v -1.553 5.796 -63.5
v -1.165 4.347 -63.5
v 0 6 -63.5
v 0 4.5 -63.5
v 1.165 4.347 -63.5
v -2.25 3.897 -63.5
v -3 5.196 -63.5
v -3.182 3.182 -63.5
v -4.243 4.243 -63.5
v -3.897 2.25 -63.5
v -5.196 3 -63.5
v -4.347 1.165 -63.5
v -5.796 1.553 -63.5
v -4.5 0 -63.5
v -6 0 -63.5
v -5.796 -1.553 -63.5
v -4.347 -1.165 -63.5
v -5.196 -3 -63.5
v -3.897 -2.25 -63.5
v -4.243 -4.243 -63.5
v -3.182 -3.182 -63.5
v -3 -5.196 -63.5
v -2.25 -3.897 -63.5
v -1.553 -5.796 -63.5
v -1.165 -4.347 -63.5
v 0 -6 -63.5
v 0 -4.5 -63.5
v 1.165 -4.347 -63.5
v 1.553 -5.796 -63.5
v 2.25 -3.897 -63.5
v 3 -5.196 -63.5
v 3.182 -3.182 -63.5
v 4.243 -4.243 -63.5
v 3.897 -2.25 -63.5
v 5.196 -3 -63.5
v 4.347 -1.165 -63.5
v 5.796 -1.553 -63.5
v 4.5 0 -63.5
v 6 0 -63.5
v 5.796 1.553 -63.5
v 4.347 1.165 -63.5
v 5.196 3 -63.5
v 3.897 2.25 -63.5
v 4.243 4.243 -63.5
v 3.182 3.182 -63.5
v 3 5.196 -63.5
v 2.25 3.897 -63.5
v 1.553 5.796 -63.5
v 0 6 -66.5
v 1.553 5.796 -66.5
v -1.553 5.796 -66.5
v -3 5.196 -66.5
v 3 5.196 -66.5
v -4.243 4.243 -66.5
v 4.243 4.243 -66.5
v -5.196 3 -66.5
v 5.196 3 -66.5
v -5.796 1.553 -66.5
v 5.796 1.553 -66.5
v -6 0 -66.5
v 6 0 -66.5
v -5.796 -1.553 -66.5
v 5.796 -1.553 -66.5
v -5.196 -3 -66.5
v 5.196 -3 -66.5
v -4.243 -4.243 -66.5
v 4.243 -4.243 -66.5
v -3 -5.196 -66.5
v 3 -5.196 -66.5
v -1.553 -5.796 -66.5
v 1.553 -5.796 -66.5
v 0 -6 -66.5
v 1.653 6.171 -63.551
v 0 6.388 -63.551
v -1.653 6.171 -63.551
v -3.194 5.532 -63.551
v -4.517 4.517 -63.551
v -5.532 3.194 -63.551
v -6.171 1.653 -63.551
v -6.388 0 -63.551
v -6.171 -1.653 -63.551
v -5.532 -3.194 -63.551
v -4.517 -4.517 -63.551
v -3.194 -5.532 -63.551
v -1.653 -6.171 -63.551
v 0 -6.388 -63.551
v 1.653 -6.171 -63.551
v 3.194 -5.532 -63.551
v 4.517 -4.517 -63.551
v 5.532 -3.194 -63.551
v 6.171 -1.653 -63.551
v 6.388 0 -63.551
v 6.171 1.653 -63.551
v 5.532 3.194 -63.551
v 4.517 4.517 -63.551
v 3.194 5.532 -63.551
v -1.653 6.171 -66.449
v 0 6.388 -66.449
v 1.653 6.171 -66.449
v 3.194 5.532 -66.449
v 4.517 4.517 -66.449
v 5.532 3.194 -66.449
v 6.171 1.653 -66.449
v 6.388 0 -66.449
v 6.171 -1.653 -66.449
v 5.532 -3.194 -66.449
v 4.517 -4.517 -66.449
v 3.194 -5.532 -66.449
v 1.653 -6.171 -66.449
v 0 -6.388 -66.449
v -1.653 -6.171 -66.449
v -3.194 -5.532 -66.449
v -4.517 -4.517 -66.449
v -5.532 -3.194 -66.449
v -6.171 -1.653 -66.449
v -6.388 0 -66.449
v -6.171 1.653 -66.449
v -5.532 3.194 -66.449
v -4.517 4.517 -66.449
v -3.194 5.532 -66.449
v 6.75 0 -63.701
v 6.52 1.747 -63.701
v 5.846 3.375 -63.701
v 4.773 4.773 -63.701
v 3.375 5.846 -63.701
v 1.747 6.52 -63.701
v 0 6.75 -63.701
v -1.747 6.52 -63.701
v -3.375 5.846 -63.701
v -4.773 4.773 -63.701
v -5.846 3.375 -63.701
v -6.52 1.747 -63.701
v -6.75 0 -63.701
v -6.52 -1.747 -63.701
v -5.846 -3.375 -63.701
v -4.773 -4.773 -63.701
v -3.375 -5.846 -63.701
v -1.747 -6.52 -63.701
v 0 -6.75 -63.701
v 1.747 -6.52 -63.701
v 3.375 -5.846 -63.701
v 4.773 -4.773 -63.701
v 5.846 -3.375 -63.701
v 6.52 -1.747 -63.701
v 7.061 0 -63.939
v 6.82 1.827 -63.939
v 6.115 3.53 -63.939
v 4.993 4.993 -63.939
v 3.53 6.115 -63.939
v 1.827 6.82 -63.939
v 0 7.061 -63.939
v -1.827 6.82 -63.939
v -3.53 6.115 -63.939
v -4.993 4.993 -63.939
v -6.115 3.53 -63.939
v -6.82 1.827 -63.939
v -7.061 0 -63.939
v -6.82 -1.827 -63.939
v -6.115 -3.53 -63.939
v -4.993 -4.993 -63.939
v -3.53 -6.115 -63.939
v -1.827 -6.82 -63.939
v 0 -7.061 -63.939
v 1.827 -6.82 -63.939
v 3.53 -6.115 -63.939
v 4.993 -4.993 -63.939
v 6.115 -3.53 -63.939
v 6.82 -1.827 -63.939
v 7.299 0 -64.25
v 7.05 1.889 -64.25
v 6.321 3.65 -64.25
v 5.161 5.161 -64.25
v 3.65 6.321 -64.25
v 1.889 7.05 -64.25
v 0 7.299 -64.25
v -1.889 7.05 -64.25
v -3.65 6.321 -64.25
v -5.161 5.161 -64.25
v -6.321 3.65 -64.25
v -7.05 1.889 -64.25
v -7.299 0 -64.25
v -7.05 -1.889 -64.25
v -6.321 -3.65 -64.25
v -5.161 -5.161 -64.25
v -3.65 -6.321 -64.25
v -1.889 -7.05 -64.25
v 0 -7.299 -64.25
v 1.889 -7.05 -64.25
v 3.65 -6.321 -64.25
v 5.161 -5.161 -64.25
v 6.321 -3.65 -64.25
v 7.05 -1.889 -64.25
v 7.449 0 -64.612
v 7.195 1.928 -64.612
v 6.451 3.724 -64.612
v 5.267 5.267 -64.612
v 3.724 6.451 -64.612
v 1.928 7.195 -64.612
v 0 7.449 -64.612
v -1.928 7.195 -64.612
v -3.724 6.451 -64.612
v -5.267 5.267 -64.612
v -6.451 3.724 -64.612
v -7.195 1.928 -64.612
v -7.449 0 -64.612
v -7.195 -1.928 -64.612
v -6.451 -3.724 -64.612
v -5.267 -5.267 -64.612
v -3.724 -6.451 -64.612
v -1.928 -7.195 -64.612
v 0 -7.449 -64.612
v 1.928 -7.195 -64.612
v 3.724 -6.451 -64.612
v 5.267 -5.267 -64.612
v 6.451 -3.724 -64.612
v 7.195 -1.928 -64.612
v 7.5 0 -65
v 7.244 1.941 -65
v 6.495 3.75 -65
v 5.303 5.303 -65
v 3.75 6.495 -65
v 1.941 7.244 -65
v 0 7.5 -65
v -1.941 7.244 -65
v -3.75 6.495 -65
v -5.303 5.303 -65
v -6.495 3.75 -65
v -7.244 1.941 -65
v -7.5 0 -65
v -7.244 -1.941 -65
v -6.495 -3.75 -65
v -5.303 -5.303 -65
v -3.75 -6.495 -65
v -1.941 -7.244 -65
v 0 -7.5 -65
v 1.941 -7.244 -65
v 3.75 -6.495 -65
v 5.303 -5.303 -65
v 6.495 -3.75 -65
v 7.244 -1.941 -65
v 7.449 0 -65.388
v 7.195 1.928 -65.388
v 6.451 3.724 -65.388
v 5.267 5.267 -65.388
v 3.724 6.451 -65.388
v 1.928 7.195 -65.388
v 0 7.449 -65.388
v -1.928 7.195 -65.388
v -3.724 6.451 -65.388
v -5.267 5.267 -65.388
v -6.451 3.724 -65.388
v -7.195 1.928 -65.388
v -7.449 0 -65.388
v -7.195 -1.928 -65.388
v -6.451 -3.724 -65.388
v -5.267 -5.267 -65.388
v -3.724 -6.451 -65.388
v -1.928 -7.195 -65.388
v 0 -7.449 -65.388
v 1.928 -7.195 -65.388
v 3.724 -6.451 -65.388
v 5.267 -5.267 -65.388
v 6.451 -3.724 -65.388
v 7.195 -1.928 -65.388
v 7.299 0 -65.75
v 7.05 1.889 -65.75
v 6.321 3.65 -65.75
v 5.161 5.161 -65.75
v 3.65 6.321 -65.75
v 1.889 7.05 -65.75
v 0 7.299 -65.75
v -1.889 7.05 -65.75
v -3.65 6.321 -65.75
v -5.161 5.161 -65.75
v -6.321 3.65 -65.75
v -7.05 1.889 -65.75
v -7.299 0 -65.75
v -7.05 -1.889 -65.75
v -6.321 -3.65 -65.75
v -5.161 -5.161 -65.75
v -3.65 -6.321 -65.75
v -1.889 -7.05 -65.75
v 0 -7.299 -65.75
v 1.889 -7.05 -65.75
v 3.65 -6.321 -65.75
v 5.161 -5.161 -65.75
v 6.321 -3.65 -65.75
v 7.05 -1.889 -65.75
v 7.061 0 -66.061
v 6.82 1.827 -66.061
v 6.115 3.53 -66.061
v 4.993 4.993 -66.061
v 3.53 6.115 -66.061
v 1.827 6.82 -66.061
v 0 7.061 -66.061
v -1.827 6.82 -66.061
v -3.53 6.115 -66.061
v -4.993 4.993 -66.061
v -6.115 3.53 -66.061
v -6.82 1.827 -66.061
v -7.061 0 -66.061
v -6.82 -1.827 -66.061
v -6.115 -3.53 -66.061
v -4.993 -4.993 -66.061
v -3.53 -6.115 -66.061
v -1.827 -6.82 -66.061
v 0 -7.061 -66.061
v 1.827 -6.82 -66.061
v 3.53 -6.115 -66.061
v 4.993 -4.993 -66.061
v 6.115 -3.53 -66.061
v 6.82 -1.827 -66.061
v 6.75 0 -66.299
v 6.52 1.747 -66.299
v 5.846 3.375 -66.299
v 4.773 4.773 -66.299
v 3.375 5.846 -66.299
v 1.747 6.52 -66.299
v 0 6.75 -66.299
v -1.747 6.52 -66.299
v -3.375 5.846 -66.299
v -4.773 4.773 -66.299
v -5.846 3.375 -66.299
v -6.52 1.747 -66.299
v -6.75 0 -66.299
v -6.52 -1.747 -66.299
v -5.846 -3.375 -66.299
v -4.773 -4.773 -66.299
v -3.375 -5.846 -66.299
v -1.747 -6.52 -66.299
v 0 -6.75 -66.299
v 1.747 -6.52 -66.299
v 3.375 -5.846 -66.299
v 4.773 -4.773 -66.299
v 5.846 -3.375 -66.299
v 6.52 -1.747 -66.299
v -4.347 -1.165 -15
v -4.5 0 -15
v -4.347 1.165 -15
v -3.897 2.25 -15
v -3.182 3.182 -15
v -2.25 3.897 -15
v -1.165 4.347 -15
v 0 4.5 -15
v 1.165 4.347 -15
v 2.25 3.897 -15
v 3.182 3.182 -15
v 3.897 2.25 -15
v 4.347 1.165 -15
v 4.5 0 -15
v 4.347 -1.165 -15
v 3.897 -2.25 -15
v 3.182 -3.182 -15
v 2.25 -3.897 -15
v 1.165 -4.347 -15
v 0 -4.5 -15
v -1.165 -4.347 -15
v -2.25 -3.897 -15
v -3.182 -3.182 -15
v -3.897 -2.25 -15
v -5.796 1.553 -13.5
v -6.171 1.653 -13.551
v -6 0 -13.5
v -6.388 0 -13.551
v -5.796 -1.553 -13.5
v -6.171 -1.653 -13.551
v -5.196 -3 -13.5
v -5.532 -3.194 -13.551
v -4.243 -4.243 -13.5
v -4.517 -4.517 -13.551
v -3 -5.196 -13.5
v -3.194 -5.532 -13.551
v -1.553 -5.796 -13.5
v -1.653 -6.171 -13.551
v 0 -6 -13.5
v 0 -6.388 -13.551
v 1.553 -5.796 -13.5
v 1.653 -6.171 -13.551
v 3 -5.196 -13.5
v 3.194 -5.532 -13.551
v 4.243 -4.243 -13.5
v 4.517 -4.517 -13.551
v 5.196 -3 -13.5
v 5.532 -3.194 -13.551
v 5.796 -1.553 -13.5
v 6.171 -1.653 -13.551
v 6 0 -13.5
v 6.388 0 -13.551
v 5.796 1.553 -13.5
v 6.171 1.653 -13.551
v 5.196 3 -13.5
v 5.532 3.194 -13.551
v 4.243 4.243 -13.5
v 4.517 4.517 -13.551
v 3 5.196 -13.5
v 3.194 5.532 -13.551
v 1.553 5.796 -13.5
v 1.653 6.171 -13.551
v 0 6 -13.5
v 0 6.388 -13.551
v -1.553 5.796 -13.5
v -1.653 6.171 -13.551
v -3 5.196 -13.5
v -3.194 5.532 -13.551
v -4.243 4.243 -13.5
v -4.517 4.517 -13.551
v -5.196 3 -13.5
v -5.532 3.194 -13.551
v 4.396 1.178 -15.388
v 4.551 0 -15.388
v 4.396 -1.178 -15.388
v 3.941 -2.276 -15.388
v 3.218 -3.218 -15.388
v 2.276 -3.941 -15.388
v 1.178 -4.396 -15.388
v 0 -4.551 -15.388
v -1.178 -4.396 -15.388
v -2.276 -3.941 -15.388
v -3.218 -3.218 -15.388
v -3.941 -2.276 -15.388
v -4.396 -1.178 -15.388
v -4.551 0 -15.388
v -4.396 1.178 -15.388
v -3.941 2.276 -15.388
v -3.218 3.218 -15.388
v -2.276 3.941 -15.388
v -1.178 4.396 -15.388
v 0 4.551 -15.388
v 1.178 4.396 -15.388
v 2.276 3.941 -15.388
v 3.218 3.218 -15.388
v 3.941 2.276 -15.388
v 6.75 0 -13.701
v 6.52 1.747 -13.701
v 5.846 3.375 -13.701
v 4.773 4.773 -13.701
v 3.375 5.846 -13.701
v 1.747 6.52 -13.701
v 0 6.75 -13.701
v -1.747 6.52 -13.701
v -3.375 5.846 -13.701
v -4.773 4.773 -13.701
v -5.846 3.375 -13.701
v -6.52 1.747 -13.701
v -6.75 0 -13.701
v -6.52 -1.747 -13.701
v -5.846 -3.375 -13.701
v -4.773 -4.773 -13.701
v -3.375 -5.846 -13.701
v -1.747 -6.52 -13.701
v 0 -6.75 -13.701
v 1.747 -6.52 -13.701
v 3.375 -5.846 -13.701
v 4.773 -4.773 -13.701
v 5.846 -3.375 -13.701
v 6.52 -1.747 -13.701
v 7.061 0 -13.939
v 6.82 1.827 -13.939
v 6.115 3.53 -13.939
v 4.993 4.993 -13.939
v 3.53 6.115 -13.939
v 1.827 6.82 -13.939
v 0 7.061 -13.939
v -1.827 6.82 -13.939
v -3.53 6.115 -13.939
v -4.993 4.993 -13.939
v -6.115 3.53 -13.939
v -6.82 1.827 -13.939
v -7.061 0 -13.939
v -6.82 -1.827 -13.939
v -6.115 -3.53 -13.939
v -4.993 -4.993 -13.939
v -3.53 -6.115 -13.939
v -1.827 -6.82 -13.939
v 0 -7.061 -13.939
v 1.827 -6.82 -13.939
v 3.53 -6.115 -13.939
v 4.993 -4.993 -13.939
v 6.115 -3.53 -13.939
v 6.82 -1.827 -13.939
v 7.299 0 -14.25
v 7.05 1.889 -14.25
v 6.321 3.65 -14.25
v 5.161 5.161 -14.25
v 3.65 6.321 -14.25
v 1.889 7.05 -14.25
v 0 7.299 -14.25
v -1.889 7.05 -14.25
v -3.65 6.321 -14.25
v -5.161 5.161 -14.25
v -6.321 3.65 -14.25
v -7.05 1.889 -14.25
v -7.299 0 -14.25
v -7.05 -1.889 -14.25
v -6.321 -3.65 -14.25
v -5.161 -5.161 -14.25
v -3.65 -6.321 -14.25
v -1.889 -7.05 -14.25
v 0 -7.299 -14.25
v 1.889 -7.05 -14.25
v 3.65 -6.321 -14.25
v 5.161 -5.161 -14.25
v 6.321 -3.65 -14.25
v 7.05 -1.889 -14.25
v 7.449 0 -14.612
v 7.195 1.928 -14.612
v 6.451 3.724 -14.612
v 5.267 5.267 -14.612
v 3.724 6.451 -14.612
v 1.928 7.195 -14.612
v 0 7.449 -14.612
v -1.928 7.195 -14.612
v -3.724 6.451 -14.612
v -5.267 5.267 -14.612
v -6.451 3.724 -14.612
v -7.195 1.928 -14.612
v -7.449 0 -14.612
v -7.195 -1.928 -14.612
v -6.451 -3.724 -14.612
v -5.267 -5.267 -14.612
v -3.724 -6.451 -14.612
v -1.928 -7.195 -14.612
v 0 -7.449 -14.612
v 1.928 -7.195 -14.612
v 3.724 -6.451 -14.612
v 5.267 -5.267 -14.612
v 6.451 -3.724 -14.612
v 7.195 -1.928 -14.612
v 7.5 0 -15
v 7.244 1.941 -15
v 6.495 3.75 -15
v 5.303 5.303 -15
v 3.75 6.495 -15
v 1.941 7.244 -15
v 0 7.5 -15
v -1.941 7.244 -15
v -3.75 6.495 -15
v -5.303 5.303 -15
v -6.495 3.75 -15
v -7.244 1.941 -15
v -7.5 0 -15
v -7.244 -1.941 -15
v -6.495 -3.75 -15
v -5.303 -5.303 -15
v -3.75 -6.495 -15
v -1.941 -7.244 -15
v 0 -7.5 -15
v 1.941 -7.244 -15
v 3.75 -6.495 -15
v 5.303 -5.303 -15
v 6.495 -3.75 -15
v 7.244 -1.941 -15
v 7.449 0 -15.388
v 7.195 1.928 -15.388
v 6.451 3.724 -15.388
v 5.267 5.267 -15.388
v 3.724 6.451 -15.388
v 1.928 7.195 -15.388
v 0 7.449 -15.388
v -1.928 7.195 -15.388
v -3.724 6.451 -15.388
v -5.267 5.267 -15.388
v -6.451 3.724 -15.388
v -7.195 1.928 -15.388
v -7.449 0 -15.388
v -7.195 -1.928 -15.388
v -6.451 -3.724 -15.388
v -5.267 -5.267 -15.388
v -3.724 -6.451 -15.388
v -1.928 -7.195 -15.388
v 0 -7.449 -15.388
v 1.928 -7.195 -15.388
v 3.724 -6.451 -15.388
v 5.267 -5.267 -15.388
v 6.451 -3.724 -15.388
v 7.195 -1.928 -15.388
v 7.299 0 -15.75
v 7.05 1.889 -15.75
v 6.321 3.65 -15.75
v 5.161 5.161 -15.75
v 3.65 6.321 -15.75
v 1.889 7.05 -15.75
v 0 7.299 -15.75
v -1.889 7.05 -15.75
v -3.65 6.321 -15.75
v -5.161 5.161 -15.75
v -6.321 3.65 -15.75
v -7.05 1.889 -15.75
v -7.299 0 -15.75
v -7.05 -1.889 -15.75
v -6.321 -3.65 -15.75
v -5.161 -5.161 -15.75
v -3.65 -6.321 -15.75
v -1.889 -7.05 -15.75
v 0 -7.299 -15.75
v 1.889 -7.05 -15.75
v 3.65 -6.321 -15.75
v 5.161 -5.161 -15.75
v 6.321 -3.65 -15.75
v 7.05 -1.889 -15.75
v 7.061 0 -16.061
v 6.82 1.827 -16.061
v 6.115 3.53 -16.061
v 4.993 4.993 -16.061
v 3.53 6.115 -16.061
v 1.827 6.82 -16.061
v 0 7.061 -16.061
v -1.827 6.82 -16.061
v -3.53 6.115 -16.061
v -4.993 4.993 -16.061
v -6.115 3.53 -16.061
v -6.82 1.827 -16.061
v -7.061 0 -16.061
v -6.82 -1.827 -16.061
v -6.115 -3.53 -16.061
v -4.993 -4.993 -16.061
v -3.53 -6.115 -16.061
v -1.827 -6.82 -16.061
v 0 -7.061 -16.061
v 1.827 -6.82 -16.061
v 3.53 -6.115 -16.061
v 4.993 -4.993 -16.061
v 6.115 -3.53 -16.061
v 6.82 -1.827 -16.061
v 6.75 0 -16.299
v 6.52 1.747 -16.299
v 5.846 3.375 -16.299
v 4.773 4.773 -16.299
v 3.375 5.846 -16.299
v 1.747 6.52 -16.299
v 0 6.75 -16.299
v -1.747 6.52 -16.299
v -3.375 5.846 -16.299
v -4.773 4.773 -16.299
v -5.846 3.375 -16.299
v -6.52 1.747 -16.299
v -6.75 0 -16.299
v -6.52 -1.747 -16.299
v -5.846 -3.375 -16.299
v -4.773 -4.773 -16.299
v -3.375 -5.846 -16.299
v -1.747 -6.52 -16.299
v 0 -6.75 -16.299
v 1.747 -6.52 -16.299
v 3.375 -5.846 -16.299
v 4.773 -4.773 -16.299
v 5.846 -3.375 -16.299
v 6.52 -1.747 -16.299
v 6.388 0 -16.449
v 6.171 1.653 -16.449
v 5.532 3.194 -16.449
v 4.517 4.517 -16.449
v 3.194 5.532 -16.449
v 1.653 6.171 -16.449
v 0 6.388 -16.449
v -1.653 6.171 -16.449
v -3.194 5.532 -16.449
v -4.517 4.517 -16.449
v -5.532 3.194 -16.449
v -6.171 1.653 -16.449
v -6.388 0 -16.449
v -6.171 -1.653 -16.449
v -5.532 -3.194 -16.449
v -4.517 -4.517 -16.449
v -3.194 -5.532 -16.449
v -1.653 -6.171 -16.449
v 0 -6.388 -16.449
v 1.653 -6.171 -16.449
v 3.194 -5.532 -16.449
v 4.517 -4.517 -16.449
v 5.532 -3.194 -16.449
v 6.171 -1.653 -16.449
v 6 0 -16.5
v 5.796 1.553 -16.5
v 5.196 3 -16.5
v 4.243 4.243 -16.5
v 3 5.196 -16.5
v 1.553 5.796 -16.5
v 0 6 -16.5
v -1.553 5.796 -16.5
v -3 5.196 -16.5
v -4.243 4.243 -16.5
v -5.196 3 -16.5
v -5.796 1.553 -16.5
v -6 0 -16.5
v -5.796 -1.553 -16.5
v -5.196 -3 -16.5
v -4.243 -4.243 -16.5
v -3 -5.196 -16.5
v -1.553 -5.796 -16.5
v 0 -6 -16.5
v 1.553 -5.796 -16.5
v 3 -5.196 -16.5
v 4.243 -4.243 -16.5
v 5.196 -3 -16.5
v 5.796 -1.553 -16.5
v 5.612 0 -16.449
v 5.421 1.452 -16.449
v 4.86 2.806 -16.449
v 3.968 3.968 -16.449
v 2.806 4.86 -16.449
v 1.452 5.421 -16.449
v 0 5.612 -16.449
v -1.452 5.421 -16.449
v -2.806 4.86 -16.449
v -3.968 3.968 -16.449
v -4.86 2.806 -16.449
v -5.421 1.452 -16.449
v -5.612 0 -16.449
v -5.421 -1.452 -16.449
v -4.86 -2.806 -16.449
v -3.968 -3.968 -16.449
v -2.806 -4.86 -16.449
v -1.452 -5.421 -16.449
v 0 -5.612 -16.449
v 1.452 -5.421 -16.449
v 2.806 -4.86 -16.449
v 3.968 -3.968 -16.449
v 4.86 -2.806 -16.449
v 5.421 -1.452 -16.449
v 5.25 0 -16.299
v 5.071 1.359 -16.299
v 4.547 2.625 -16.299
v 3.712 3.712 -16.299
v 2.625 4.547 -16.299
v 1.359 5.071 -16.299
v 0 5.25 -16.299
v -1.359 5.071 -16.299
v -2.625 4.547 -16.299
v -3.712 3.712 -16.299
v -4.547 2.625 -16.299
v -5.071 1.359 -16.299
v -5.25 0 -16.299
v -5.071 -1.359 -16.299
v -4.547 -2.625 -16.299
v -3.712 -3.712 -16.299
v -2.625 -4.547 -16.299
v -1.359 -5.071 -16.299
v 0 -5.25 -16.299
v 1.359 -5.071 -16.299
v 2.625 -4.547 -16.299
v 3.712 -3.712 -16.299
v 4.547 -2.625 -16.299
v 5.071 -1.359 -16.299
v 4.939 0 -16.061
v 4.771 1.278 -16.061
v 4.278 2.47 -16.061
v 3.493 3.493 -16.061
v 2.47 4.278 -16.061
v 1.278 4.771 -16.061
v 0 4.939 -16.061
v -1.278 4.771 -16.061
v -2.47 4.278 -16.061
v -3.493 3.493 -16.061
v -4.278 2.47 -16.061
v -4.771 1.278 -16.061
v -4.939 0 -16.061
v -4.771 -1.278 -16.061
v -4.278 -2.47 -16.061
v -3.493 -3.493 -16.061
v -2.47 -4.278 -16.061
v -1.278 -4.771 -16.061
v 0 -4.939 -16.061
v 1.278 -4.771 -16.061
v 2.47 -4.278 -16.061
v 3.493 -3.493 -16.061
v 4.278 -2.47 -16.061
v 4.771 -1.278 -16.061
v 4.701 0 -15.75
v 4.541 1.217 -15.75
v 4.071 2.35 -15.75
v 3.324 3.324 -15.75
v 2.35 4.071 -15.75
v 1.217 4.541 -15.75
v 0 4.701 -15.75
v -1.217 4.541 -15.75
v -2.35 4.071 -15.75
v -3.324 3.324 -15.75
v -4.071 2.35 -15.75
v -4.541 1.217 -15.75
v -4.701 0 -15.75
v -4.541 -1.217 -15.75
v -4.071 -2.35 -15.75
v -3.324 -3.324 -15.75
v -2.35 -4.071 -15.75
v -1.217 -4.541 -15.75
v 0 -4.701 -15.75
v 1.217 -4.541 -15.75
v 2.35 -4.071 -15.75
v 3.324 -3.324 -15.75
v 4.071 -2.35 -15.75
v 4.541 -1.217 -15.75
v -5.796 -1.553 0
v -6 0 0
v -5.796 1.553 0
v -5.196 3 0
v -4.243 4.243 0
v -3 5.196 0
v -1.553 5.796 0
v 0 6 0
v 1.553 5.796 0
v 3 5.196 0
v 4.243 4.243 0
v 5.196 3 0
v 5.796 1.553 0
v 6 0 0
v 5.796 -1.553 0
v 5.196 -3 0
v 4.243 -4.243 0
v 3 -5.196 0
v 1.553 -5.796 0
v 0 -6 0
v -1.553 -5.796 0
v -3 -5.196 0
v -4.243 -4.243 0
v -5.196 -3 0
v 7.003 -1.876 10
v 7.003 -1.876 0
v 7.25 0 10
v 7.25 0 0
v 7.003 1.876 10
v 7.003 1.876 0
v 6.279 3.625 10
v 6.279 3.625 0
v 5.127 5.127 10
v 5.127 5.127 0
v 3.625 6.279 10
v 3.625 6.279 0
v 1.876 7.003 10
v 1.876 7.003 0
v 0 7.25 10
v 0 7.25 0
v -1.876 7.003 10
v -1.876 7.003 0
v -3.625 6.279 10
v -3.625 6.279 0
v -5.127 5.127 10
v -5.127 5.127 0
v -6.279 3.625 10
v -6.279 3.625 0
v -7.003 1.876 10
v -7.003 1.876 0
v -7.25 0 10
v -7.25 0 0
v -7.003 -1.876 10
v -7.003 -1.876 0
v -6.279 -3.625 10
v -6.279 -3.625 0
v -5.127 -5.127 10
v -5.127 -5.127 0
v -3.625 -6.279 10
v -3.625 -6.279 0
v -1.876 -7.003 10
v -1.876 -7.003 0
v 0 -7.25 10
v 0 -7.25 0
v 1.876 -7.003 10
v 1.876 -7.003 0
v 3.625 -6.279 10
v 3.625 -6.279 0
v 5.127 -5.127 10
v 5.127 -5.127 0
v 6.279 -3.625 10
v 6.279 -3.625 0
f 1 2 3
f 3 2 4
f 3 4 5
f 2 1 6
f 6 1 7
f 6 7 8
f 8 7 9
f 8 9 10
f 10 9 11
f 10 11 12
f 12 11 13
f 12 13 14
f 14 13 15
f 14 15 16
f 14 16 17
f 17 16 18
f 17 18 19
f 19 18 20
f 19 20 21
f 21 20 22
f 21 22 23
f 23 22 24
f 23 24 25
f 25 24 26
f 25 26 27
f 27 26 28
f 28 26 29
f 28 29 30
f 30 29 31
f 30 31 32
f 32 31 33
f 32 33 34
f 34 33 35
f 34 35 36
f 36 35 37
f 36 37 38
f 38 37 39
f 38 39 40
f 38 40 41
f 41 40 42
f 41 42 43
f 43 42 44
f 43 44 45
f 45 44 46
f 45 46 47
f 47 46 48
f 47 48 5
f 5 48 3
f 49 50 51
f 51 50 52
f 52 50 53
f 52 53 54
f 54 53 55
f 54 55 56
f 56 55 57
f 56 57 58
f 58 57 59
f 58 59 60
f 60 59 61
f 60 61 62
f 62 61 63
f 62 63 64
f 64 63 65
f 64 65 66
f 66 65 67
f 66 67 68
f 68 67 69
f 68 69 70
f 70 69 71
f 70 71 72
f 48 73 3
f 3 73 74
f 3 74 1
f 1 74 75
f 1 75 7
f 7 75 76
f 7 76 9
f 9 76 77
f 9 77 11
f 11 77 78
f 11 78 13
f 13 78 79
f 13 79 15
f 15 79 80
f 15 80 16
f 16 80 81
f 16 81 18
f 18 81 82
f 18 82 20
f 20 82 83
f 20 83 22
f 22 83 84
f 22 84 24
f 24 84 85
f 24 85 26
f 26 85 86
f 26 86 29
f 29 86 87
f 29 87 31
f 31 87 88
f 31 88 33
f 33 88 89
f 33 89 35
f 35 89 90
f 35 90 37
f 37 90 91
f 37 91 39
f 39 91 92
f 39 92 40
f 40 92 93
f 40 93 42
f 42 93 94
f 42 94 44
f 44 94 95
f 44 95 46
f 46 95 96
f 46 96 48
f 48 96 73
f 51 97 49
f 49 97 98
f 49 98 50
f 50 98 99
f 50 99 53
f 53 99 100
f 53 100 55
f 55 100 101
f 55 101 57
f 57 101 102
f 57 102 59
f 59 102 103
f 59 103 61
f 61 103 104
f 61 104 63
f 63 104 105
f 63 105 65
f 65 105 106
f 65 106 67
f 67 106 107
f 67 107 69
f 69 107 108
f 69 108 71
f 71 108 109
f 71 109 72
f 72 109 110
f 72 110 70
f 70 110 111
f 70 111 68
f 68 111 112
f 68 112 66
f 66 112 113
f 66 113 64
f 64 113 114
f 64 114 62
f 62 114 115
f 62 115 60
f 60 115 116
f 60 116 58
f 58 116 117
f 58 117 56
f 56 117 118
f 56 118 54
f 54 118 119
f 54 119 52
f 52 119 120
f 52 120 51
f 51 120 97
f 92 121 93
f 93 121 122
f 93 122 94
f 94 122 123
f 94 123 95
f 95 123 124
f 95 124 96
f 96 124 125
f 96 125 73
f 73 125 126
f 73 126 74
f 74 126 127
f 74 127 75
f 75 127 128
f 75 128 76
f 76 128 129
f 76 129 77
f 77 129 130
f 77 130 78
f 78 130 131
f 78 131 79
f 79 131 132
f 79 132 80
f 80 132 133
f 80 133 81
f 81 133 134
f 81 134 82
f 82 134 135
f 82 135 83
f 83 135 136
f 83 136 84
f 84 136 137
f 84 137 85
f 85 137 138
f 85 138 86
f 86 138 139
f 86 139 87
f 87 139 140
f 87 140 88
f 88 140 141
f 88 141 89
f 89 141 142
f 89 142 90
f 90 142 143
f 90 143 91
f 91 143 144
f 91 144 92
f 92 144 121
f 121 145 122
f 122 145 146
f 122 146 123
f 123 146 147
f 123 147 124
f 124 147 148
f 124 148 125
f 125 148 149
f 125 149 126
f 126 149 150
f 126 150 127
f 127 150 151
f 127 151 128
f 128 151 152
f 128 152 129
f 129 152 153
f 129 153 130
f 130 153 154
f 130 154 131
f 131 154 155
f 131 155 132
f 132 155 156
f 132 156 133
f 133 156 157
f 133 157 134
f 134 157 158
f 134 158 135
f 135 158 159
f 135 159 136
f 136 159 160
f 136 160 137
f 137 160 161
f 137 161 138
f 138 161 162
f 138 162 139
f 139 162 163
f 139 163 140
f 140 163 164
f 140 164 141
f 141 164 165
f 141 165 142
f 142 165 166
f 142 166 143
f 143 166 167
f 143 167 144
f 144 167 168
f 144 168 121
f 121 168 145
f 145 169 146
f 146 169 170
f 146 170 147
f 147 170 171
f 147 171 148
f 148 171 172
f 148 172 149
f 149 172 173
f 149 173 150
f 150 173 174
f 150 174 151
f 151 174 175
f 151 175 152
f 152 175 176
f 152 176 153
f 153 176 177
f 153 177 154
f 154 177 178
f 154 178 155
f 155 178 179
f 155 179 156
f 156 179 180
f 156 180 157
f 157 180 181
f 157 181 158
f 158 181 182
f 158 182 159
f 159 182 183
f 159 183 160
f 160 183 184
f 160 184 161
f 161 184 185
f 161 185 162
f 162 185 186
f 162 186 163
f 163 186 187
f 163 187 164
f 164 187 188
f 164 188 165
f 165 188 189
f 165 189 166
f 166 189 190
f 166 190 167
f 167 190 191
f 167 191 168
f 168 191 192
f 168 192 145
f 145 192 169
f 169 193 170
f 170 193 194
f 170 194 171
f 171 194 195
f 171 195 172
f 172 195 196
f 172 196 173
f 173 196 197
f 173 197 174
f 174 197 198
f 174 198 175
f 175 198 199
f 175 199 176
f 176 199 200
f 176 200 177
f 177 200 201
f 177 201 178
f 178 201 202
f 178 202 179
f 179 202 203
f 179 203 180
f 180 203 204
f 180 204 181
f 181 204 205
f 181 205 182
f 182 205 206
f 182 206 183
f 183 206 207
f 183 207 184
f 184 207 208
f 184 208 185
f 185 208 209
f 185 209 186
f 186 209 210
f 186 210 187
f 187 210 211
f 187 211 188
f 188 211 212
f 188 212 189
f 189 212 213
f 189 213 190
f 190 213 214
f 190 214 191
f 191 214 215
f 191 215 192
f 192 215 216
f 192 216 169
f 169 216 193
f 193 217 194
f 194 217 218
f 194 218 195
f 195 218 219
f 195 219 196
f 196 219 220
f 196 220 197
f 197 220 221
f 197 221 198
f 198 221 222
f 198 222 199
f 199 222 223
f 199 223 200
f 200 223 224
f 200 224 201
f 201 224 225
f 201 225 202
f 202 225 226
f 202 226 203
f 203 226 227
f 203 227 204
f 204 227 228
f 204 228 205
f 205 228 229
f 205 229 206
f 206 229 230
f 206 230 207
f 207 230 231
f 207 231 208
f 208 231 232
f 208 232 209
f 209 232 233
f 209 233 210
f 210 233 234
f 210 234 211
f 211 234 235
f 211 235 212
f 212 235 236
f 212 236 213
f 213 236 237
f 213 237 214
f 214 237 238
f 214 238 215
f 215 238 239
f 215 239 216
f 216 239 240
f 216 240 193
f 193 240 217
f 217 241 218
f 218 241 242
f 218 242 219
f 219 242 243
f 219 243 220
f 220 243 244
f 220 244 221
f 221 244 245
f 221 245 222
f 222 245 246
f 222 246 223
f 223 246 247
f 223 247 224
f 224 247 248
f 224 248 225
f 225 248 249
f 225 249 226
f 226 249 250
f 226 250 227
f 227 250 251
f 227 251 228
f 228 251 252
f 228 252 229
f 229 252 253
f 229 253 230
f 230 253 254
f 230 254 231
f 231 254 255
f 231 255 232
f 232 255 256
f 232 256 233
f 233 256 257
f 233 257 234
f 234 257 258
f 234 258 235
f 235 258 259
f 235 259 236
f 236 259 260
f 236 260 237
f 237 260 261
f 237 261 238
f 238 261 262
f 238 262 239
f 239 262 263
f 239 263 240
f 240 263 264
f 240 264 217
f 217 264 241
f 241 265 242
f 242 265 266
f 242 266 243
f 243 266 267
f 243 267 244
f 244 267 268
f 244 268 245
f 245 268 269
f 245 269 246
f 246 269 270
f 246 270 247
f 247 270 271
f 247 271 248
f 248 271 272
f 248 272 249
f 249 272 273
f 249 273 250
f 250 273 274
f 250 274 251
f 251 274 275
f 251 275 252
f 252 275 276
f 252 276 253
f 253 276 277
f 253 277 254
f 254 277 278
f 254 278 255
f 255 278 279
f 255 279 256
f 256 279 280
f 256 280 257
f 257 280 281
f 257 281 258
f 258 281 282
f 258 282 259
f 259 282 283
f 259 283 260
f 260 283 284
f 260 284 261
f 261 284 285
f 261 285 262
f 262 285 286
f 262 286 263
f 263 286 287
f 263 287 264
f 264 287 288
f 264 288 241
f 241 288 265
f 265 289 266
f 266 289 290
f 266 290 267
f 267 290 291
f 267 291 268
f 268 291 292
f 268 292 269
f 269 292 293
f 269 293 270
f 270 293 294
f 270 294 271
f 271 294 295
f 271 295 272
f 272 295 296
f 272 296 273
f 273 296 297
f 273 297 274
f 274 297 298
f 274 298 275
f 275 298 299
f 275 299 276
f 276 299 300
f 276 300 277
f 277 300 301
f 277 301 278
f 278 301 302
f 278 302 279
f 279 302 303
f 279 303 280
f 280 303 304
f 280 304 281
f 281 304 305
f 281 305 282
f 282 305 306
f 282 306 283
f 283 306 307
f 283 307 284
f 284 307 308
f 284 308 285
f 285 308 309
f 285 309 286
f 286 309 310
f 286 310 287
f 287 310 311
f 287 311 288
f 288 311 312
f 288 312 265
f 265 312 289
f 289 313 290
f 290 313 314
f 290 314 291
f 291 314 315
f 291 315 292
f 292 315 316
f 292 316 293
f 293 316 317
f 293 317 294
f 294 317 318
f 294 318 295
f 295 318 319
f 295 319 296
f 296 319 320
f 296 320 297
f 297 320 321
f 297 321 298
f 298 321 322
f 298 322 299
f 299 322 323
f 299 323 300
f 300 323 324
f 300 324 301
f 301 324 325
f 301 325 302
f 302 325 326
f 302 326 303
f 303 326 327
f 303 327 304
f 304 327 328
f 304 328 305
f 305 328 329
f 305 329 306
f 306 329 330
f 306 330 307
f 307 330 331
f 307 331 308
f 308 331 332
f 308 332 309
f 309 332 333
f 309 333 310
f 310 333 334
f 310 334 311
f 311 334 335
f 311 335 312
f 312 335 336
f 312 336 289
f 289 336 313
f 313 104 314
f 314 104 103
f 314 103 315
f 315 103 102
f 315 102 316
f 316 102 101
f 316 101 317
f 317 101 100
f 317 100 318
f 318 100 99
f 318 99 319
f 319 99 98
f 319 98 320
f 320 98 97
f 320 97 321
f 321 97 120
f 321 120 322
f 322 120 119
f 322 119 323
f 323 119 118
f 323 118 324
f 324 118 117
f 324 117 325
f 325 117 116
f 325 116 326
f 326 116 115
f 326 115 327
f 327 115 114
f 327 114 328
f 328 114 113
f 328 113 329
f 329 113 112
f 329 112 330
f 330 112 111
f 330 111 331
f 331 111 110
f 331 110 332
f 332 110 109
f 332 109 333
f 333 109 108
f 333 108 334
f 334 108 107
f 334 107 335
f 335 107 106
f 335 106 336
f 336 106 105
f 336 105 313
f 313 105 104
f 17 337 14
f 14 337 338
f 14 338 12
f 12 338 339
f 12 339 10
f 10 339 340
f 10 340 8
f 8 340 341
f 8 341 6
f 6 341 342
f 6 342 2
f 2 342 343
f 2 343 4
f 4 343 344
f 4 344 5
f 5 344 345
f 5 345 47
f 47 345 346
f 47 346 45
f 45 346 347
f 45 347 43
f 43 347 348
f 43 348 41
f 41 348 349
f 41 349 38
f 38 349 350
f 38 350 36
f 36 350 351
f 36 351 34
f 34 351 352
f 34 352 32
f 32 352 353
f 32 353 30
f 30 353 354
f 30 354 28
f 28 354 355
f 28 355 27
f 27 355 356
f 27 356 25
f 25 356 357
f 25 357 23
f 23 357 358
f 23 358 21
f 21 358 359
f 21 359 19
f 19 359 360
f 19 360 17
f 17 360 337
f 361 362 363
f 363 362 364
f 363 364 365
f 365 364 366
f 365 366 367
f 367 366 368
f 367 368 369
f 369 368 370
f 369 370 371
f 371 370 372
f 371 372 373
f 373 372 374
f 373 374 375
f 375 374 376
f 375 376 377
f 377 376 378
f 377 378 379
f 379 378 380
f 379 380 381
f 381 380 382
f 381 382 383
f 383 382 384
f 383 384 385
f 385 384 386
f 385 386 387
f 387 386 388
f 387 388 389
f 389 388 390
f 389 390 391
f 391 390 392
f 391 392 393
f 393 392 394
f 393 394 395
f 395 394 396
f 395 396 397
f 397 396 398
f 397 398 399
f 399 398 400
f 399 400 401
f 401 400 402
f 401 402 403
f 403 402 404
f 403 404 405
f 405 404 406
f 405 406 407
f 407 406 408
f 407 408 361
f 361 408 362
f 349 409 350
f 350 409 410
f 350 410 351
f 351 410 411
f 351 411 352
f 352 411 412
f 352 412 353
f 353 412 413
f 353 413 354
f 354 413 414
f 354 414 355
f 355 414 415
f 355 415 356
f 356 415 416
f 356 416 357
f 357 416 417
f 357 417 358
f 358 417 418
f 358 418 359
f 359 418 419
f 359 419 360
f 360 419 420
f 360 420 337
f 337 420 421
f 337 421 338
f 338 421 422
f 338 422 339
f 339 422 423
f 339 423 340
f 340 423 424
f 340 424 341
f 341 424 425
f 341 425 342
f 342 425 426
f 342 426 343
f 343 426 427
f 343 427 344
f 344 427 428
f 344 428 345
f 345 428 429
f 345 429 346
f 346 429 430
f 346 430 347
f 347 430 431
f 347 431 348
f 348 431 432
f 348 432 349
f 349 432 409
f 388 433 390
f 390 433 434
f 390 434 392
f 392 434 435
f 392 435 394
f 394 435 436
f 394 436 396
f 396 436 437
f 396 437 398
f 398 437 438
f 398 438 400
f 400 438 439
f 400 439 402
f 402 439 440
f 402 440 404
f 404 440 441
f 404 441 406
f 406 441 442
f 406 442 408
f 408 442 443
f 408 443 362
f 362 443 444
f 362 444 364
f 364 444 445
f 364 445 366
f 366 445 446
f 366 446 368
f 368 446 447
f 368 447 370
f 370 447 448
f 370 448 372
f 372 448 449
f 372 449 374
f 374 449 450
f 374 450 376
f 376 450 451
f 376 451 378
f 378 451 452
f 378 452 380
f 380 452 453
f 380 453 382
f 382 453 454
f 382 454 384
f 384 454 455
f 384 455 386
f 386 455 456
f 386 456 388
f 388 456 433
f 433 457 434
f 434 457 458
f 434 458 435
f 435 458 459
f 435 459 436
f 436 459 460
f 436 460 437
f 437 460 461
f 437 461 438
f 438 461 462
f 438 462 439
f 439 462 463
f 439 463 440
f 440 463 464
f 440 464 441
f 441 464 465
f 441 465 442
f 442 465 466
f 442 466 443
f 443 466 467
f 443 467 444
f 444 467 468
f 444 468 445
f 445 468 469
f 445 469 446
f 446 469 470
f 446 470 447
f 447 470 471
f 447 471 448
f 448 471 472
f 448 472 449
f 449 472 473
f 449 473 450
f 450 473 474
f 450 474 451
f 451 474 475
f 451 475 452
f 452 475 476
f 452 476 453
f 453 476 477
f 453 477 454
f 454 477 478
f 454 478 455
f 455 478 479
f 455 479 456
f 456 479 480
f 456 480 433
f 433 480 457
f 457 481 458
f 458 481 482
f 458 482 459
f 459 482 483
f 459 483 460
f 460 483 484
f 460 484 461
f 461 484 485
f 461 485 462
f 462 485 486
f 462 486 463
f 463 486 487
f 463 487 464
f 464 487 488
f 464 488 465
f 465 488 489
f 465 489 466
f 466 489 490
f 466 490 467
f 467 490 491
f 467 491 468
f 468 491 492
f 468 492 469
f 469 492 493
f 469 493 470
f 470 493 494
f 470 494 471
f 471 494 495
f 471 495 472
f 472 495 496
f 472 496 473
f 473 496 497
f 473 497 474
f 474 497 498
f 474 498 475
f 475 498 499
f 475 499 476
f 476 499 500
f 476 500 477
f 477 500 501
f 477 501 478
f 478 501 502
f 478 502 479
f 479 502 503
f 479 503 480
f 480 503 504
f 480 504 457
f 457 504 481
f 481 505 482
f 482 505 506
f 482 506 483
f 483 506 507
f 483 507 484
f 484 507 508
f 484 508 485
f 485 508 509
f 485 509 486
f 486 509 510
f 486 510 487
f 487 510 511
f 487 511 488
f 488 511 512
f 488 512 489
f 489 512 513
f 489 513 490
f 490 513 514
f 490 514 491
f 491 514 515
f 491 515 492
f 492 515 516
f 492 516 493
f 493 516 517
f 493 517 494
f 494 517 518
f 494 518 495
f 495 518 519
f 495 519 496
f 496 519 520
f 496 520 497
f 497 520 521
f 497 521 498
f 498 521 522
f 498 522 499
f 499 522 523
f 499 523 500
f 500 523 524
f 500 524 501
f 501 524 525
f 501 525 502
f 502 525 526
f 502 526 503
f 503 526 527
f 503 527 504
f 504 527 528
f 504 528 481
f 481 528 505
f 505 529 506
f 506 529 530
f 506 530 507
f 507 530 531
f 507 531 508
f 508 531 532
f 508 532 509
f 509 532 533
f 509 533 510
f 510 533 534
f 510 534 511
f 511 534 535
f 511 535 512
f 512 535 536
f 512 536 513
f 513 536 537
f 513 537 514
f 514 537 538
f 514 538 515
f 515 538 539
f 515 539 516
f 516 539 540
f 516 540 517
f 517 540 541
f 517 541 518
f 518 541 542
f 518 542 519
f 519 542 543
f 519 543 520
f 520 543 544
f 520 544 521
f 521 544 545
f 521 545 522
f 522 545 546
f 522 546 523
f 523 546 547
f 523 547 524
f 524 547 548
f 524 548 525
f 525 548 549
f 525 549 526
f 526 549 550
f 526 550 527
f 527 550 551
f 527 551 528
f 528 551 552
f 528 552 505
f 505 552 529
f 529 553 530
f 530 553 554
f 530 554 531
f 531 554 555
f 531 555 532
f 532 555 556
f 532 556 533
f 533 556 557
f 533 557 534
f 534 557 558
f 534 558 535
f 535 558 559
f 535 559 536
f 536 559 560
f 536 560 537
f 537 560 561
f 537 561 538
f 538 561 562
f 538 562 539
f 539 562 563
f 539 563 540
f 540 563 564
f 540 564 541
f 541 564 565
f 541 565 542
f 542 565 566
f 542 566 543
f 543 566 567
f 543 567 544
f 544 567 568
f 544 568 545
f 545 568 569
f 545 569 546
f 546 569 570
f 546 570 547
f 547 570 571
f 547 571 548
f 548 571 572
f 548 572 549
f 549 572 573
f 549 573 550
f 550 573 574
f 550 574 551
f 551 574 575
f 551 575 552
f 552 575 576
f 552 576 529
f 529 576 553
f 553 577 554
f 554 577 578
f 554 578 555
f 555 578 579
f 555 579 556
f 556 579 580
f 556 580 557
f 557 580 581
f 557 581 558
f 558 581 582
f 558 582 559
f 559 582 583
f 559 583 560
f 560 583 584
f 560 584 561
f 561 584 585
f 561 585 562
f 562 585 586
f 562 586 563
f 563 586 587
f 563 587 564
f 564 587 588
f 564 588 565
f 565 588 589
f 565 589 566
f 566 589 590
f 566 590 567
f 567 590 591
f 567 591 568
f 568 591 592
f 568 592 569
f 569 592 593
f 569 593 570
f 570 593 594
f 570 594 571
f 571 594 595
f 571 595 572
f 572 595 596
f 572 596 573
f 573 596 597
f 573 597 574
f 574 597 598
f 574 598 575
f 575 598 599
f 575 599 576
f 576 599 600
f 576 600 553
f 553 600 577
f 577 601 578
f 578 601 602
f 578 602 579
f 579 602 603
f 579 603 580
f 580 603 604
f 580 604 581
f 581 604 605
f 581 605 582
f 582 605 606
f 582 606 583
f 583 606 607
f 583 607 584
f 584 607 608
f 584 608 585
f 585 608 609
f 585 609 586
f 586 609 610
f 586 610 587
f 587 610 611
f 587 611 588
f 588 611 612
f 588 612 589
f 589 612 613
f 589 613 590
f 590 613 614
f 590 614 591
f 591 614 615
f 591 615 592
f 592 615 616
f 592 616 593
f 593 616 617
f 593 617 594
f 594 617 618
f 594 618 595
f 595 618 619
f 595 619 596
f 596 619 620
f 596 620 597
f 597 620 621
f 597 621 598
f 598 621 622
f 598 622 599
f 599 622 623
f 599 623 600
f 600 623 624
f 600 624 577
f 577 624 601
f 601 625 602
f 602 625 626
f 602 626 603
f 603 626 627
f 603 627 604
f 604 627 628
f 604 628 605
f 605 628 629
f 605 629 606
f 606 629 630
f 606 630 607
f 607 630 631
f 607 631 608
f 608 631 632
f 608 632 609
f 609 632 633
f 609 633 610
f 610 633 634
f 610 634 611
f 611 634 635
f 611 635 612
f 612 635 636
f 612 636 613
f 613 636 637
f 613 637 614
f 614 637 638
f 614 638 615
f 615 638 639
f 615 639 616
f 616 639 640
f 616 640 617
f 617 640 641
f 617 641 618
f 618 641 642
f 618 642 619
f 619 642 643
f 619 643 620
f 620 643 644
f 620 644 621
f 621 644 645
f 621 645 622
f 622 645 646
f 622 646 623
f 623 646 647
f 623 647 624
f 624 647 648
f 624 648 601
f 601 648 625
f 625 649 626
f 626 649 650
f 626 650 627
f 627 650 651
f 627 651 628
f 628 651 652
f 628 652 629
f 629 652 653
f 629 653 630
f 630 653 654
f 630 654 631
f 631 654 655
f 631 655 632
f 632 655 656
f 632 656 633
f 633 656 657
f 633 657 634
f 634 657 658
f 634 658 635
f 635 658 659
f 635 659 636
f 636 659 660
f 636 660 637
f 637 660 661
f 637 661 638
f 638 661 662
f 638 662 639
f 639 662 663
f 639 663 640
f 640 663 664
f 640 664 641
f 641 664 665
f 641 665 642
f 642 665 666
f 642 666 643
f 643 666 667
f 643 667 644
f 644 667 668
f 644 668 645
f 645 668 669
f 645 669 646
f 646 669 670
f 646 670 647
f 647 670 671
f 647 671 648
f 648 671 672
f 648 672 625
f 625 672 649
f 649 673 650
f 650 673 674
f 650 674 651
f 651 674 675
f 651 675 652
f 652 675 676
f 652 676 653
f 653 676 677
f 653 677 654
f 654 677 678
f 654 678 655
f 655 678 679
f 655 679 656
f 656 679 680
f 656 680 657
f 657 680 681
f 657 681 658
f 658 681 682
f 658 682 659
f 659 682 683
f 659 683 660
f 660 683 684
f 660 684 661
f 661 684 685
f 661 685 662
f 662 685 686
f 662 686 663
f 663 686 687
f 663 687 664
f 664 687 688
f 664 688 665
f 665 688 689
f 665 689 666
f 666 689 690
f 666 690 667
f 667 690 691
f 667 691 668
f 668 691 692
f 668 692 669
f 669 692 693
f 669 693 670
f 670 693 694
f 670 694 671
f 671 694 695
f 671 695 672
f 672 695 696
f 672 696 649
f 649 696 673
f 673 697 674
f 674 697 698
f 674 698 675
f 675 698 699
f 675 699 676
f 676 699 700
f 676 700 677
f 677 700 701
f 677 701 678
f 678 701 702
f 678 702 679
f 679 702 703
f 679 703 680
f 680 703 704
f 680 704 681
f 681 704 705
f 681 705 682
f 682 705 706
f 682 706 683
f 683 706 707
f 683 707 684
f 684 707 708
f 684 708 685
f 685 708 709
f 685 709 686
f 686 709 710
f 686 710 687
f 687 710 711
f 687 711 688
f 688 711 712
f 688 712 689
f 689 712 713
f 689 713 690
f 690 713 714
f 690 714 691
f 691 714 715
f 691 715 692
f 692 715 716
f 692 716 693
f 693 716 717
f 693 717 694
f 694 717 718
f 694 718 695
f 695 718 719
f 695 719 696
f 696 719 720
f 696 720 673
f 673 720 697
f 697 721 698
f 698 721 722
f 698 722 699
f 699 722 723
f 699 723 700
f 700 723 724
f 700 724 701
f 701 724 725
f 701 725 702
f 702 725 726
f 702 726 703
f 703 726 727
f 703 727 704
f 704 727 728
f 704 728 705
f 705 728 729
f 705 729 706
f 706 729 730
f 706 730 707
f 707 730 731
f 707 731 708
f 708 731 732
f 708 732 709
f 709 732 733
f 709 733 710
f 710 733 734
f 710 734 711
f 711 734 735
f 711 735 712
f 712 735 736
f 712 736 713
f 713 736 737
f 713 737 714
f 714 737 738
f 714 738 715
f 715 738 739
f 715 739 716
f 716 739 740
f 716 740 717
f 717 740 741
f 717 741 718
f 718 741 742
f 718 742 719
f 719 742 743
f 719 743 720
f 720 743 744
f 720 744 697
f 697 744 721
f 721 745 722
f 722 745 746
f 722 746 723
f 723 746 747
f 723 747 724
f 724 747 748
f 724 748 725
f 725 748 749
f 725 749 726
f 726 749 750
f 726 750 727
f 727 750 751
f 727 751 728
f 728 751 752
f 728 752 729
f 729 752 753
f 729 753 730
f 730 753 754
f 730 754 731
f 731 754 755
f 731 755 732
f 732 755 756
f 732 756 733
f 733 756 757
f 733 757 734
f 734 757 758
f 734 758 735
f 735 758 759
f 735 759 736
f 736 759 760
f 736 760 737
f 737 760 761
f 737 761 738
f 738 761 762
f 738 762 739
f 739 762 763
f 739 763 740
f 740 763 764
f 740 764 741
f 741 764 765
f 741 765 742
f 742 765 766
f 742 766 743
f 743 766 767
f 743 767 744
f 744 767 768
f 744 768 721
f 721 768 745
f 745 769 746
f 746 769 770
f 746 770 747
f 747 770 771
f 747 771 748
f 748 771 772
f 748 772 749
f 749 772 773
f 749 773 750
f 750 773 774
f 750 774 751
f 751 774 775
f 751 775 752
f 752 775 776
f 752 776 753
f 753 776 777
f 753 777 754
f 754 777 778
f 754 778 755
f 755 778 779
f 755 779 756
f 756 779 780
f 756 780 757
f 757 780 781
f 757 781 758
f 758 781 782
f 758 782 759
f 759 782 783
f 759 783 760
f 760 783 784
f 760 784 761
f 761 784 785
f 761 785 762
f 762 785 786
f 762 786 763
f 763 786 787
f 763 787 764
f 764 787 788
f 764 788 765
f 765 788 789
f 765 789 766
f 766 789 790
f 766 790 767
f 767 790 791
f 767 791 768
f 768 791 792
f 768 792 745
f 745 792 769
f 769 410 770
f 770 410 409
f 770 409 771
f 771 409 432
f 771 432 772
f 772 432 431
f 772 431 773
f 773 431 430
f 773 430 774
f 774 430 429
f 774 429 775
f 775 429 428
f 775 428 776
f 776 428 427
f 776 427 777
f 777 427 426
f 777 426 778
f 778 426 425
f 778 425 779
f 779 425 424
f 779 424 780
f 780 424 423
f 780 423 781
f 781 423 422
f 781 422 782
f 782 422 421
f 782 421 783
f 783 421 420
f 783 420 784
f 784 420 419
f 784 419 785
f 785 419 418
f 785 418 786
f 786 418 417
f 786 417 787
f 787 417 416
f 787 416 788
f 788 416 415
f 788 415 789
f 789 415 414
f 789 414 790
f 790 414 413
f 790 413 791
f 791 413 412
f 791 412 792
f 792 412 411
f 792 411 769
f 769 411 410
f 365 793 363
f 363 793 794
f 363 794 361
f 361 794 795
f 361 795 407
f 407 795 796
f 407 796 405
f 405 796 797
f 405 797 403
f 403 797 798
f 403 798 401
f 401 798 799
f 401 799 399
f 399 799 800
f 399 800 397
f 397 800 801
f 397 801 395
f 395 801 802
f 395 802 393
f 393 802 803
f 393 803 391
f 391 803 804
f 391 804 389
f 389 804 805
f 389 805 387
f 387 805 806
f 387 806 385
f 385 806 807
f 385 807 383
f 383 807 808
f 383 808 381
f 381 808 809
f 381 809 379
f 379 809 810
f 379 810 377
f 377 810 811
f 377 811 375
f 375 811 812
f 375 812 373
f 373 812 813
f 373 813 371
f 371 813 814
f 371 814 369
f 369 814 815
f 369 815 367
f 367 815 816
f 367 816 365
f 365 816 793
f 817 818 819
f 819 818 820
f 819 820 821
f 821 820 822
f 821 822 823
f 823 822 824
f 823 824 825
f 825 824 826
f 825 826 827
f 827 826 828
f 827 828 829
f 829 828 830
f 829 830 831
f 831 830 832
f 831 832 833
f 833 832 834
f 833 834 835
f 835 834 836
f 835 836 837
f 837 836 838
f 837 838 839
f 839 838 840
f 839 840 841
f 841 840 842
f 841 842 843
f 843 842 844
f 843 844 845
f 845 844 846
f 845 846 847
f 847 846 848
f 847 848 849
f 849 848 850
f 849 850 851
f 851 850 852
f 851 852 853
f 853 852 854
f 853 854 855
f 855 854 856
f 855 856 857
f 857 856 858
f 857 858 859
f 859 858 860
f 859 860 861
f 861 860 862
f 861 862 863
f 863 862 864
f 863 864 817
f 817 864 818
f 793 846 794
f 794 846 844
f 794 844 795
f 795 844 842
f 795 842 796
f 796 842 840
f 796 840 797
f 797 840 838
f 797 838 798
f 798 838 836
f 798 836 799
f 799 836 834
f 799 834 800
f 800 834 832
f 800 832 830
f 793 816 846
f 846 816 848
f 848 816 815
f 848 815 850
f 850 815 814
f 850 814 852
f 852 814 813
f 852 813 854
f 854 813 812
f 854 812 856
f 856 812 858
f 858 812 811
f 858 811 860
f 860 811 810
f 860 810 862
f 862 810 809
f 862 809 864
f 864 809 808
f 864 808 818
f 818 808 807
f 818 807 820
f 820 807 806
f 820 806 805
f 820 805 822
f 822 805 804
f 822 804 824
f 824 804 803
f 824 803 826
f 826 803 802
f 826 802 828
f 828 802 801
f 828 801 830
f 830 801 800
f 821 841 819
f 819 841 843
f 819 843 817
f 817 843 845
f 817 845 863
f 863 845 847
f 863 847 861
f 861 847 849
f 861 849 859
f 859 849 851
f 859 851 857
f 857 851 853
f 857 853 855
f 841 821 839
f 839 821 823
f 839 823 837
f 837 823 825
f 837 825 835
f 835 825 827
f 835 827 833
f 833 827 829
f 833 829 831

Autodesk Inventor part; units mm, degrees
ref_plane "YZ Plane" through (0, 0, 0) normal (1, 0, 0) x (0, 1, 0)
ref_plane "XZ Plane" through (0, 0, 0) normal (0, 1, 0) x (-1, 0, 0)
ref_plane "XY Plane" through (0, 0, 0) normal (0, 0, 1) x (1, 0, 0)
sketch "草圖1" plane through (0, 0, 0) normal (0, 0, 1) x (1, 0, 0)
  circle A0 centre (0, 0) radius 7.25
  dimension "d0" = 14.5
extrude "擠出1" add sketch "草圖1" along normal blind 10
sketch "草圖2" plane through (0, 0, 0) normal (0, 0, -1) x (-1, 0, 0)
  circle A0 centre (0, 0) radius 7.25 construction
  circle A1 centre (0, 0) radius 6
  dimension "d3" = 12
extrude "擠出2" add sketch "草圖2" along normal blind 15
sketch "草圖3" plane through (0, 0, 0) normal (1, 0, 0) x (0, 1, 0)
  line L0 (-6, -15) -> (6, -15) construction
  circle A0 centre (6, -15) radius 1.5
  line L1 (0, -27.8) -> (0, 16.3) projected
  point P0 (0, 0)
  dimension "d6" = 3
revolve "迴轉1" add sketch "草圖3" angle 360 about axis through (0, 0, -10) along (0, 0, 1)
sketch "草圖4" plane through (0, 0, -15) normal (0, 0, -1) x (-1, 0, 0)
  circle A0 centre (0, 0) radius 4.5 projected
extrude "擠出3" add sketch "草圖4" along normal blind 50
sketch "草圖9" plane through (0, 0, 0) normal (1, 0, 0) x (0, 1, 0)
  arc A0 (6, -16.5) -> (6, -13.5) centre (6, -15) ccw construction
  line L0 (6, -15) -> (6, -68.4054) construction
  line L1 (-4.5, -65) -> (4.5, -65) construction
  line L2 (0, -65) -> (6, -65) construction
  arc A1 (6, -66.5) -> (6, -63.5) centre (6, -65) ccw
  line L3 (0, -84.0865) -> (0, 25.6811) projected
  line L4 (6, -66.5) -> (0, -66.5)
  line L5 (0, -65) -> (4.5, -65) construction
  line L6 (6, -63.5) -> (0, -63.5)
  line L7 (0, -66.5) -> (0, -63.5)
  point P0 (0, 0)
  dimension "d14" = 3
revolve "迴轉2" add sketch "草圖9" angle 360 about axis through (0, 0, -10) along (0, 0, 1)
properties part number "hand"
